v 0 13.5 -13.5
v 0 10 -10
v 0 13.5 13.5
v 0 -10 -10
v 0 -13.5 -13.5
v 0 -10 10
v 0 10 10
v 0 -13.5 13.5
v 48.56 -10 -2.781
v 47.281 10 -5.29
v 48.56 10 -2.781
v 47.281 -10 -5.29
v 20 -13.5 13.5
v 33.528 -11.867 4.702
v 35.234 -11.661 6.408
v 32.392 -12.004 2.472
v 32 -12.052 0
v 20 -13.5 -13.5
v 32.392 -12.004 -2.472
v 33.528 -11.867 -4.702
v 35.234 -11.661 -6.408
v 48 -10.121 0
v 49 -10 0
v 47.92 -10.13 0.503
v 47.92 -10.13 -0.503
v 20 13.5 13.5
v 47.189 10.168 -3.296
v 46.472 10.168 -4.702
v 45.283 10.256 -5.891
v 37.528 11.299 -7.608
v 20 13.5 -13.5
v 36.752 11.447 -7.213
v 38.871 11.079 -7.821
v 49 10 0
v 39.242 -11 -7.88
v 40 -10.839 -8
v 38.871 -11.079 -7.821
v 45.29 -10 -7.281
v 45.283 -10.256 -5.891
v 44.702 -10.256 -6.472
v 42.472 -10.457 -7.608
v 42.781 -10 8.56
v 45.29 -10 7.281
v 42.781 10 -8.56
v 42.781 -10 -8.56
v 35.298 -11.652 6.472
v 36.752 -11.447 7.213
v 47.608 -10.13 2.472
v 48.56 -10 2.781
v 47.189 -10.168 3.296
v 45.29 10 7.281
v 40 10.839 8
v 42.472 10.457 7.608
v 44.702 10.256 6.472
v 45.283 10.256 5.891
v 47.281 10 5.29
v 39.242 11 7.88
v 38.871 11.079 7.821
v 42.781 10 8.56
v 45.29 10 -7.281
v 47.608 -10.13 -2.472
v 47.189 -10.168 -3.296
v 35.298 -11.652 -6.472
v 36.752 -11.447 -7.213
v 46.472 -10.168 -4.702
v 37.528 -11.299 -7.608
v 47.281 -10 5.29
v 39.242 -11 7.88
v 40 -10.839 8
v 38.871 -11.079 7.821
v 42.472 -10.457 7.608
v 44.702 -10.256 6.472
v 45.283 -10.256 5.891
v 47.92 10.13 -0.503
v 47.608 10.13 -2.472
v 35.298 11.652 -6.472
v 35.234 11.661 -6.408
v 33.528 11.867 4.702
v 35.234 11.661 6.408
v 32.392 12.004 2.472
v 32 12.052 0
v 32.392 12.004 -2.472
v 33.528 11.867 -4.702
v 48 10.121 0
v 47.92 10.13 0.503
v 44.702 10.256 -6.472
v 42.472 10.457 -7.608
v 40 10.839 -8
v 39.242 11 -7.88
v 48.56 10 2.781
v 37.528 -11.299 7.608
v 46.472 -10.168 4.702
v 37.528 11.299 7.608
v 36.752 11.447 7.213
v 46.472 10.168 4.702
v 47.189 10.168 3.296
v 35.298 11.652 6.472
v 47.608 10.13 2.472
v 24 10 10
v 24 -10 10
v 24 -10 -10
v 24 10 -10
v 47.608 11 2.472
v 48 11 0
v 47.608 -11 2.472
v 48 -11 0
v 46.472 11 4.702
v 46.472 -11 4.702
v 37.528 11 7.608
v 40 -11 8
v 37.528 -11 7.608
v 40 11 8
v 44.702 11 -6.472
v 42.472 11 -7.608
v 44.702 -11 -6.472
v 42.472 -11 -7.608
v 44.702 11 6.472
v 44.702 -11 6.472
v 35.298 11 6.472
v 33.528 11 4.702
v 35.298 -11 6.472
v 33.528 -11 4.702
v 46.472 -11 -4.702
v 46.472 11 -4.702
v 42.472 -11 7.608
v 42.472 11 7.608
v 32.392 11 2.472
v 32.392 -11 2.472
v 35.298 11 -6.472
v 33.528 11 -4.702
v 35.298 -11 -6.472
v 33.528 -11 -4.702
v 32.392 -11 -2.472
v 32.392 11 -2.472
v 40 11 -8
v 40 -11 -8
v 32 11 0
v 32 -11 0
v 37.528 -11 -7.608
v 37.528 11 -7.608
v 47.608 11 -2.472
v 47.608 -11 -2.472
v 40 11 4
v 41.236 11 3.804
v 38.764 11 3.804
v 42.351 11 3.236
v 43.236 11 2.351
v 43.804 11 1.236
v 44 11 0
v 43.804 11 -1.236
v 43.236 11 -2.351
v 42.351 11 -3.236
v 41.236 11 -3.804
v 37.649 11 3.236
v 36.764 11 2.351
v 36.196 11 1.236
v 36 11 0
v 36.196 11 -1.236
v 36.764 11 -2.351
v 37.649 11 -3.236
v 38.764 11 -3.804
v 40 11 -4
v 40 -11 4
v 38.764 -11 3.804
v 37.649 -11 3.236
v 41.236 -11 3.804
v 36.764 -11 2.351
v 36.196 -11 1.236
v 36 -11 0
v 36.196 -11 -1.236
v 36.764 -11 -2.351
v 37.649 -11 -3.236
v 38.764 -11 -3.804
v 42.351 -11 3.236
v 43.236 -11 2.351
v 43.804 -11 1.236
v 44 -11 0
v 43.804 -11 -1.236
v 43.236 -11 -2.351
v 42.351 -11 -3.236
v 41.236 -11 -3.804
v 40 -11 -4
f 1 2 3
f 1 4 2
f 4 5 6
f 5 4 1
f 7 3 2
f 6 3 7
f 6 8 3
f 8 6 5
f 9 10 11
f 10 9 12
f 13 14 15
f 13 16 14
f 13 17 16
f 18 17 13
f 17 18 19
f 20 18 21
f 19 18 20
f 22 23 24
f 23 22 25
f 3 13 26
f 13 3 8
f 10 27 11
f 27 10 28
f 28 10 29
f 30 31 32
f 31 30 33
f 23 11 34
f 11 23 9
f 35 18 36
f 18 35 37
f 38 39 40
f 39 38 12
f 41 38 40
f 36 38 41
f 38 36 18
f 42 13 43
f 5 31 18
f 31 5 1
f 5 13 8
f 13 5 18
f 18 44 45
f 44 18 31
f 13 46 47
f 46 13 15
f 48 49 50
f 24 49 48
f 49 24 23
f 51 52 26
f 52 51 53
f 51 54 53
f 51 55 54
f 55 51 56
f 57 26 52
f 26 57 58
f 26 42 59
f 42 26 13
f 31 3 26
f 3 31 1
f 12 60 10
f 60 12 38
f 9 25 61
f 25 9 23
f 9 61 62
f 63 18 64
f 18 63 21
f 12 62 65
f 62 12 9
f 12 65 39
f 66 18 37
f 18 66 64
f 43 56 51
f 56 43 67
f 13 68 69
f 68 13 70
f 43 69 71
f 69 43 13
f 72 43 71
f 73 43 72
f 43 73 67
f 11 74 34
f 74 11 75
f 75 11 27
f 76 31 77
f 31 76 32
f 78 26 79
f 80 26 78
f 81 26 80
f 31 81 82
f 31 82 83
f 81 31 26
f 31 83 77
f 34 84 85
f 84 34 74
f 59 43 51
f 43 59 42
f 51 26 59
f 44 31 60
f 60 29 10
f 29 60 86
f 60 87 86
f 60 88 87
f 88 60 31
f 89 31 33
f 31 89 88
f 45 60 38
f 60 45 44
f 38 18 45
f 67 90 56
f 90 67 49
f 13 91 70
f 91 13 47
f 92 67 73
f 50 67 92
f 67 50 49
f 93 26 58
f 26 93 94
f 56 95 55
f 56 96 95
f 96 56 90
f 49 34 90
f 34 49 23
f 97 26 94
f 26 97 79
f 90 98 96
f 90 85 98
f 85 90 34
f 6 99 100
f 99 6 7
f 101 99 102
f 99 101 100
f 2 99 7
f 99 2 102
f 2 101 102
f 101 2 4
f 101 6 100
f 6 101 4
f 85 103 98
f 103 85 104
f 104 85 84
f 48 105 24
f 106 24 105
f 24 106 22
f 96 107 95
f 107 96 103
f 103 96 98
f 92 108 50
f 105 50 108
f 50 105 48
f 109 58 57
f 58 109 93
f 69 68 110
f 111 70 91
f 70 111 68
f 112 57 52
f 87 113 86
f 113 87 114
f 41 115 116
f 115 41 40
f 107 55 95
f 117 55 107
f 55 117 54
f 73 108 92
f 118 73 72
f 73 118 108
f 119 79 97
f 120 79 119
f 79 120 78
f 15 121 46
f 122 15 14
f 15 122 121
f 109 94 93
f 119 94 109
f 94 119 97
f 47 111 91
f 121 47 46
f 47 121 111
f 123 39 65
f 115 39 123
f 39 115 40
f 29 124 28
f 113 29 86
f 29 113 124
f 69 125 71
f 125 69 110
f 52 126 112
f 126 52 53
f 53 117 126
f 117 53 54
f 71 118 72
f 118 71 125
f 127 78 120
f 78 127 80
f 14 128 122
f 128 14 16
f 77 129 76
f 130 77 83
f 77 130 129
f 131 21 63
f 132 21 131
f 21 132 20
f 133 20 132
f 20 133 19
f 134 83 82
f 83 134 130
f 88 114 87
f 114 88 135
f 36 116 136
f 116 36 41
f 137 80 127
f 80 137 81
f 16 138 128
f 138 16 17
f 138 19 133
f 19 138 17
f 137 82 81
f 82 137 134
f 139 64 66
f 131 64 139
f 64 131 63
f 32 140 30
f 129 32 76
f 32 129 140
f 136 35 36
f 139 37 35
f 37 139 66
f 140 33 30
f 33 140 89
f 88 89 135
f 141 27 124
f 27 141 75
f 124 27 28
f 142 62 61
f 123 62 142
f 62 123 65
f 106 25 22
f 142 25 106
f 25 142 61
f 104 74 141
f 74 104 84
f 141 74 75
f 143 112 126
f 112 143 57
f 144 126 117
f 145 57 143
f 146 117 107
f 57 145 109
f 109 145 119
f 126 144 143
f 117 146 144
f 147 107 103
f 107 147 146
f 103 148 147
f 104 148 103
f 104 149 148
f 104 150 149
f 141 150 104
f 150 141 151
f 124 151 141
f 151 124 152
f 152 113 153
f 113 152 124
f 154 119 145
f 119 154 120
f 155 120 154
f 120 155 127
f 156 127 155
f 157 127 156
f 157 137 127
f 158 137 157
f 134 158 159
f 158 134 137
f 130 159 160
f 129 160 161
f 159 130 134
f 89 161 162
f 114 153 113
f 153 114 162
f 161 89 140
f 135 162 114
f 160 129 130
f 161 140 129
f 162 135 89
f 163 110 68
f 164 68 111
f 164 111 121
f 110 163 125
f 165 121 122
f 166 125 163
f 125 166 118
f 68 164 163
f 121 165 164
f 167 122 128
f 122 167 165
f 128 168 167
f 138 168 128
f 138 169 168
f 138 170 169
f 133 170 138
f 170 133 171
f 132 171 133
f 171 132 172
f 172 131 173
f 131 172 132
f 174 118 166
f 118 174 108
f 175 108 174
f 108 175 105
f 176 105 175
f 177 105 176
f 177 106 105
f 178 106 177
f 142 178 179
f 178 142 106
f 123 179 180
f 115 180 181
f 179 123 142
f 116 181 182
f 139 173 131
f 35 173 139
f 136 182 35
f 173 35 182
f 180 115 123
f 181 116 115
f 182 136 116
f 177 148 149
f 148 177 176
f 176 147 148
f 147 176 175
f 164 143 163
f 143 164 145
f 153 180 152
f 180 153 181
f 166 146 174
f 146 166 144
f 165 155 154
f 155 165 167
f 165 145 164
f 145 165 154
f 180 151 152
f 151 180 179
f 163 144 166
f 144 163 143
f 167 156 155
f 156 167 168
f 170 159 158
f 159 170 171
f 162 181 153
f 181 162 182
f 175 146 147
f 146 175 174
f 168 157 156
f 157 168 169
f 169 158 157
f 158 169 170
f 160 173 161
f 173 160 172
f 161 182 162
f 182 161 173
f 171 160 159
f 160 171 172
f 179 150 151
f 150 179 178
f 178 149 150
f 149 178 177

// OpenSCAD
difference(){
hull(){
translate([0,-27/2,-27/2])cube([20,27,27]);
translate([40,20/2,0])rotate([90,00,0])cylinder(r=9, h=20, $fn=20);
}
translate([-1,-20/2,-20/2])cube([25,20,20]);
translate([40,40/2,0])rotate([90,00,0])cylinder(r=8, h=40, $fn=20);
}

difference(){
translate([40,22/2,0])rotate([90,00,0])cylinder(r=8, h=22, $fn=20);
translate([40,60/2,0])rotate([90,00,0])cylinder(r=4, h=60, $fn=20); 
}
